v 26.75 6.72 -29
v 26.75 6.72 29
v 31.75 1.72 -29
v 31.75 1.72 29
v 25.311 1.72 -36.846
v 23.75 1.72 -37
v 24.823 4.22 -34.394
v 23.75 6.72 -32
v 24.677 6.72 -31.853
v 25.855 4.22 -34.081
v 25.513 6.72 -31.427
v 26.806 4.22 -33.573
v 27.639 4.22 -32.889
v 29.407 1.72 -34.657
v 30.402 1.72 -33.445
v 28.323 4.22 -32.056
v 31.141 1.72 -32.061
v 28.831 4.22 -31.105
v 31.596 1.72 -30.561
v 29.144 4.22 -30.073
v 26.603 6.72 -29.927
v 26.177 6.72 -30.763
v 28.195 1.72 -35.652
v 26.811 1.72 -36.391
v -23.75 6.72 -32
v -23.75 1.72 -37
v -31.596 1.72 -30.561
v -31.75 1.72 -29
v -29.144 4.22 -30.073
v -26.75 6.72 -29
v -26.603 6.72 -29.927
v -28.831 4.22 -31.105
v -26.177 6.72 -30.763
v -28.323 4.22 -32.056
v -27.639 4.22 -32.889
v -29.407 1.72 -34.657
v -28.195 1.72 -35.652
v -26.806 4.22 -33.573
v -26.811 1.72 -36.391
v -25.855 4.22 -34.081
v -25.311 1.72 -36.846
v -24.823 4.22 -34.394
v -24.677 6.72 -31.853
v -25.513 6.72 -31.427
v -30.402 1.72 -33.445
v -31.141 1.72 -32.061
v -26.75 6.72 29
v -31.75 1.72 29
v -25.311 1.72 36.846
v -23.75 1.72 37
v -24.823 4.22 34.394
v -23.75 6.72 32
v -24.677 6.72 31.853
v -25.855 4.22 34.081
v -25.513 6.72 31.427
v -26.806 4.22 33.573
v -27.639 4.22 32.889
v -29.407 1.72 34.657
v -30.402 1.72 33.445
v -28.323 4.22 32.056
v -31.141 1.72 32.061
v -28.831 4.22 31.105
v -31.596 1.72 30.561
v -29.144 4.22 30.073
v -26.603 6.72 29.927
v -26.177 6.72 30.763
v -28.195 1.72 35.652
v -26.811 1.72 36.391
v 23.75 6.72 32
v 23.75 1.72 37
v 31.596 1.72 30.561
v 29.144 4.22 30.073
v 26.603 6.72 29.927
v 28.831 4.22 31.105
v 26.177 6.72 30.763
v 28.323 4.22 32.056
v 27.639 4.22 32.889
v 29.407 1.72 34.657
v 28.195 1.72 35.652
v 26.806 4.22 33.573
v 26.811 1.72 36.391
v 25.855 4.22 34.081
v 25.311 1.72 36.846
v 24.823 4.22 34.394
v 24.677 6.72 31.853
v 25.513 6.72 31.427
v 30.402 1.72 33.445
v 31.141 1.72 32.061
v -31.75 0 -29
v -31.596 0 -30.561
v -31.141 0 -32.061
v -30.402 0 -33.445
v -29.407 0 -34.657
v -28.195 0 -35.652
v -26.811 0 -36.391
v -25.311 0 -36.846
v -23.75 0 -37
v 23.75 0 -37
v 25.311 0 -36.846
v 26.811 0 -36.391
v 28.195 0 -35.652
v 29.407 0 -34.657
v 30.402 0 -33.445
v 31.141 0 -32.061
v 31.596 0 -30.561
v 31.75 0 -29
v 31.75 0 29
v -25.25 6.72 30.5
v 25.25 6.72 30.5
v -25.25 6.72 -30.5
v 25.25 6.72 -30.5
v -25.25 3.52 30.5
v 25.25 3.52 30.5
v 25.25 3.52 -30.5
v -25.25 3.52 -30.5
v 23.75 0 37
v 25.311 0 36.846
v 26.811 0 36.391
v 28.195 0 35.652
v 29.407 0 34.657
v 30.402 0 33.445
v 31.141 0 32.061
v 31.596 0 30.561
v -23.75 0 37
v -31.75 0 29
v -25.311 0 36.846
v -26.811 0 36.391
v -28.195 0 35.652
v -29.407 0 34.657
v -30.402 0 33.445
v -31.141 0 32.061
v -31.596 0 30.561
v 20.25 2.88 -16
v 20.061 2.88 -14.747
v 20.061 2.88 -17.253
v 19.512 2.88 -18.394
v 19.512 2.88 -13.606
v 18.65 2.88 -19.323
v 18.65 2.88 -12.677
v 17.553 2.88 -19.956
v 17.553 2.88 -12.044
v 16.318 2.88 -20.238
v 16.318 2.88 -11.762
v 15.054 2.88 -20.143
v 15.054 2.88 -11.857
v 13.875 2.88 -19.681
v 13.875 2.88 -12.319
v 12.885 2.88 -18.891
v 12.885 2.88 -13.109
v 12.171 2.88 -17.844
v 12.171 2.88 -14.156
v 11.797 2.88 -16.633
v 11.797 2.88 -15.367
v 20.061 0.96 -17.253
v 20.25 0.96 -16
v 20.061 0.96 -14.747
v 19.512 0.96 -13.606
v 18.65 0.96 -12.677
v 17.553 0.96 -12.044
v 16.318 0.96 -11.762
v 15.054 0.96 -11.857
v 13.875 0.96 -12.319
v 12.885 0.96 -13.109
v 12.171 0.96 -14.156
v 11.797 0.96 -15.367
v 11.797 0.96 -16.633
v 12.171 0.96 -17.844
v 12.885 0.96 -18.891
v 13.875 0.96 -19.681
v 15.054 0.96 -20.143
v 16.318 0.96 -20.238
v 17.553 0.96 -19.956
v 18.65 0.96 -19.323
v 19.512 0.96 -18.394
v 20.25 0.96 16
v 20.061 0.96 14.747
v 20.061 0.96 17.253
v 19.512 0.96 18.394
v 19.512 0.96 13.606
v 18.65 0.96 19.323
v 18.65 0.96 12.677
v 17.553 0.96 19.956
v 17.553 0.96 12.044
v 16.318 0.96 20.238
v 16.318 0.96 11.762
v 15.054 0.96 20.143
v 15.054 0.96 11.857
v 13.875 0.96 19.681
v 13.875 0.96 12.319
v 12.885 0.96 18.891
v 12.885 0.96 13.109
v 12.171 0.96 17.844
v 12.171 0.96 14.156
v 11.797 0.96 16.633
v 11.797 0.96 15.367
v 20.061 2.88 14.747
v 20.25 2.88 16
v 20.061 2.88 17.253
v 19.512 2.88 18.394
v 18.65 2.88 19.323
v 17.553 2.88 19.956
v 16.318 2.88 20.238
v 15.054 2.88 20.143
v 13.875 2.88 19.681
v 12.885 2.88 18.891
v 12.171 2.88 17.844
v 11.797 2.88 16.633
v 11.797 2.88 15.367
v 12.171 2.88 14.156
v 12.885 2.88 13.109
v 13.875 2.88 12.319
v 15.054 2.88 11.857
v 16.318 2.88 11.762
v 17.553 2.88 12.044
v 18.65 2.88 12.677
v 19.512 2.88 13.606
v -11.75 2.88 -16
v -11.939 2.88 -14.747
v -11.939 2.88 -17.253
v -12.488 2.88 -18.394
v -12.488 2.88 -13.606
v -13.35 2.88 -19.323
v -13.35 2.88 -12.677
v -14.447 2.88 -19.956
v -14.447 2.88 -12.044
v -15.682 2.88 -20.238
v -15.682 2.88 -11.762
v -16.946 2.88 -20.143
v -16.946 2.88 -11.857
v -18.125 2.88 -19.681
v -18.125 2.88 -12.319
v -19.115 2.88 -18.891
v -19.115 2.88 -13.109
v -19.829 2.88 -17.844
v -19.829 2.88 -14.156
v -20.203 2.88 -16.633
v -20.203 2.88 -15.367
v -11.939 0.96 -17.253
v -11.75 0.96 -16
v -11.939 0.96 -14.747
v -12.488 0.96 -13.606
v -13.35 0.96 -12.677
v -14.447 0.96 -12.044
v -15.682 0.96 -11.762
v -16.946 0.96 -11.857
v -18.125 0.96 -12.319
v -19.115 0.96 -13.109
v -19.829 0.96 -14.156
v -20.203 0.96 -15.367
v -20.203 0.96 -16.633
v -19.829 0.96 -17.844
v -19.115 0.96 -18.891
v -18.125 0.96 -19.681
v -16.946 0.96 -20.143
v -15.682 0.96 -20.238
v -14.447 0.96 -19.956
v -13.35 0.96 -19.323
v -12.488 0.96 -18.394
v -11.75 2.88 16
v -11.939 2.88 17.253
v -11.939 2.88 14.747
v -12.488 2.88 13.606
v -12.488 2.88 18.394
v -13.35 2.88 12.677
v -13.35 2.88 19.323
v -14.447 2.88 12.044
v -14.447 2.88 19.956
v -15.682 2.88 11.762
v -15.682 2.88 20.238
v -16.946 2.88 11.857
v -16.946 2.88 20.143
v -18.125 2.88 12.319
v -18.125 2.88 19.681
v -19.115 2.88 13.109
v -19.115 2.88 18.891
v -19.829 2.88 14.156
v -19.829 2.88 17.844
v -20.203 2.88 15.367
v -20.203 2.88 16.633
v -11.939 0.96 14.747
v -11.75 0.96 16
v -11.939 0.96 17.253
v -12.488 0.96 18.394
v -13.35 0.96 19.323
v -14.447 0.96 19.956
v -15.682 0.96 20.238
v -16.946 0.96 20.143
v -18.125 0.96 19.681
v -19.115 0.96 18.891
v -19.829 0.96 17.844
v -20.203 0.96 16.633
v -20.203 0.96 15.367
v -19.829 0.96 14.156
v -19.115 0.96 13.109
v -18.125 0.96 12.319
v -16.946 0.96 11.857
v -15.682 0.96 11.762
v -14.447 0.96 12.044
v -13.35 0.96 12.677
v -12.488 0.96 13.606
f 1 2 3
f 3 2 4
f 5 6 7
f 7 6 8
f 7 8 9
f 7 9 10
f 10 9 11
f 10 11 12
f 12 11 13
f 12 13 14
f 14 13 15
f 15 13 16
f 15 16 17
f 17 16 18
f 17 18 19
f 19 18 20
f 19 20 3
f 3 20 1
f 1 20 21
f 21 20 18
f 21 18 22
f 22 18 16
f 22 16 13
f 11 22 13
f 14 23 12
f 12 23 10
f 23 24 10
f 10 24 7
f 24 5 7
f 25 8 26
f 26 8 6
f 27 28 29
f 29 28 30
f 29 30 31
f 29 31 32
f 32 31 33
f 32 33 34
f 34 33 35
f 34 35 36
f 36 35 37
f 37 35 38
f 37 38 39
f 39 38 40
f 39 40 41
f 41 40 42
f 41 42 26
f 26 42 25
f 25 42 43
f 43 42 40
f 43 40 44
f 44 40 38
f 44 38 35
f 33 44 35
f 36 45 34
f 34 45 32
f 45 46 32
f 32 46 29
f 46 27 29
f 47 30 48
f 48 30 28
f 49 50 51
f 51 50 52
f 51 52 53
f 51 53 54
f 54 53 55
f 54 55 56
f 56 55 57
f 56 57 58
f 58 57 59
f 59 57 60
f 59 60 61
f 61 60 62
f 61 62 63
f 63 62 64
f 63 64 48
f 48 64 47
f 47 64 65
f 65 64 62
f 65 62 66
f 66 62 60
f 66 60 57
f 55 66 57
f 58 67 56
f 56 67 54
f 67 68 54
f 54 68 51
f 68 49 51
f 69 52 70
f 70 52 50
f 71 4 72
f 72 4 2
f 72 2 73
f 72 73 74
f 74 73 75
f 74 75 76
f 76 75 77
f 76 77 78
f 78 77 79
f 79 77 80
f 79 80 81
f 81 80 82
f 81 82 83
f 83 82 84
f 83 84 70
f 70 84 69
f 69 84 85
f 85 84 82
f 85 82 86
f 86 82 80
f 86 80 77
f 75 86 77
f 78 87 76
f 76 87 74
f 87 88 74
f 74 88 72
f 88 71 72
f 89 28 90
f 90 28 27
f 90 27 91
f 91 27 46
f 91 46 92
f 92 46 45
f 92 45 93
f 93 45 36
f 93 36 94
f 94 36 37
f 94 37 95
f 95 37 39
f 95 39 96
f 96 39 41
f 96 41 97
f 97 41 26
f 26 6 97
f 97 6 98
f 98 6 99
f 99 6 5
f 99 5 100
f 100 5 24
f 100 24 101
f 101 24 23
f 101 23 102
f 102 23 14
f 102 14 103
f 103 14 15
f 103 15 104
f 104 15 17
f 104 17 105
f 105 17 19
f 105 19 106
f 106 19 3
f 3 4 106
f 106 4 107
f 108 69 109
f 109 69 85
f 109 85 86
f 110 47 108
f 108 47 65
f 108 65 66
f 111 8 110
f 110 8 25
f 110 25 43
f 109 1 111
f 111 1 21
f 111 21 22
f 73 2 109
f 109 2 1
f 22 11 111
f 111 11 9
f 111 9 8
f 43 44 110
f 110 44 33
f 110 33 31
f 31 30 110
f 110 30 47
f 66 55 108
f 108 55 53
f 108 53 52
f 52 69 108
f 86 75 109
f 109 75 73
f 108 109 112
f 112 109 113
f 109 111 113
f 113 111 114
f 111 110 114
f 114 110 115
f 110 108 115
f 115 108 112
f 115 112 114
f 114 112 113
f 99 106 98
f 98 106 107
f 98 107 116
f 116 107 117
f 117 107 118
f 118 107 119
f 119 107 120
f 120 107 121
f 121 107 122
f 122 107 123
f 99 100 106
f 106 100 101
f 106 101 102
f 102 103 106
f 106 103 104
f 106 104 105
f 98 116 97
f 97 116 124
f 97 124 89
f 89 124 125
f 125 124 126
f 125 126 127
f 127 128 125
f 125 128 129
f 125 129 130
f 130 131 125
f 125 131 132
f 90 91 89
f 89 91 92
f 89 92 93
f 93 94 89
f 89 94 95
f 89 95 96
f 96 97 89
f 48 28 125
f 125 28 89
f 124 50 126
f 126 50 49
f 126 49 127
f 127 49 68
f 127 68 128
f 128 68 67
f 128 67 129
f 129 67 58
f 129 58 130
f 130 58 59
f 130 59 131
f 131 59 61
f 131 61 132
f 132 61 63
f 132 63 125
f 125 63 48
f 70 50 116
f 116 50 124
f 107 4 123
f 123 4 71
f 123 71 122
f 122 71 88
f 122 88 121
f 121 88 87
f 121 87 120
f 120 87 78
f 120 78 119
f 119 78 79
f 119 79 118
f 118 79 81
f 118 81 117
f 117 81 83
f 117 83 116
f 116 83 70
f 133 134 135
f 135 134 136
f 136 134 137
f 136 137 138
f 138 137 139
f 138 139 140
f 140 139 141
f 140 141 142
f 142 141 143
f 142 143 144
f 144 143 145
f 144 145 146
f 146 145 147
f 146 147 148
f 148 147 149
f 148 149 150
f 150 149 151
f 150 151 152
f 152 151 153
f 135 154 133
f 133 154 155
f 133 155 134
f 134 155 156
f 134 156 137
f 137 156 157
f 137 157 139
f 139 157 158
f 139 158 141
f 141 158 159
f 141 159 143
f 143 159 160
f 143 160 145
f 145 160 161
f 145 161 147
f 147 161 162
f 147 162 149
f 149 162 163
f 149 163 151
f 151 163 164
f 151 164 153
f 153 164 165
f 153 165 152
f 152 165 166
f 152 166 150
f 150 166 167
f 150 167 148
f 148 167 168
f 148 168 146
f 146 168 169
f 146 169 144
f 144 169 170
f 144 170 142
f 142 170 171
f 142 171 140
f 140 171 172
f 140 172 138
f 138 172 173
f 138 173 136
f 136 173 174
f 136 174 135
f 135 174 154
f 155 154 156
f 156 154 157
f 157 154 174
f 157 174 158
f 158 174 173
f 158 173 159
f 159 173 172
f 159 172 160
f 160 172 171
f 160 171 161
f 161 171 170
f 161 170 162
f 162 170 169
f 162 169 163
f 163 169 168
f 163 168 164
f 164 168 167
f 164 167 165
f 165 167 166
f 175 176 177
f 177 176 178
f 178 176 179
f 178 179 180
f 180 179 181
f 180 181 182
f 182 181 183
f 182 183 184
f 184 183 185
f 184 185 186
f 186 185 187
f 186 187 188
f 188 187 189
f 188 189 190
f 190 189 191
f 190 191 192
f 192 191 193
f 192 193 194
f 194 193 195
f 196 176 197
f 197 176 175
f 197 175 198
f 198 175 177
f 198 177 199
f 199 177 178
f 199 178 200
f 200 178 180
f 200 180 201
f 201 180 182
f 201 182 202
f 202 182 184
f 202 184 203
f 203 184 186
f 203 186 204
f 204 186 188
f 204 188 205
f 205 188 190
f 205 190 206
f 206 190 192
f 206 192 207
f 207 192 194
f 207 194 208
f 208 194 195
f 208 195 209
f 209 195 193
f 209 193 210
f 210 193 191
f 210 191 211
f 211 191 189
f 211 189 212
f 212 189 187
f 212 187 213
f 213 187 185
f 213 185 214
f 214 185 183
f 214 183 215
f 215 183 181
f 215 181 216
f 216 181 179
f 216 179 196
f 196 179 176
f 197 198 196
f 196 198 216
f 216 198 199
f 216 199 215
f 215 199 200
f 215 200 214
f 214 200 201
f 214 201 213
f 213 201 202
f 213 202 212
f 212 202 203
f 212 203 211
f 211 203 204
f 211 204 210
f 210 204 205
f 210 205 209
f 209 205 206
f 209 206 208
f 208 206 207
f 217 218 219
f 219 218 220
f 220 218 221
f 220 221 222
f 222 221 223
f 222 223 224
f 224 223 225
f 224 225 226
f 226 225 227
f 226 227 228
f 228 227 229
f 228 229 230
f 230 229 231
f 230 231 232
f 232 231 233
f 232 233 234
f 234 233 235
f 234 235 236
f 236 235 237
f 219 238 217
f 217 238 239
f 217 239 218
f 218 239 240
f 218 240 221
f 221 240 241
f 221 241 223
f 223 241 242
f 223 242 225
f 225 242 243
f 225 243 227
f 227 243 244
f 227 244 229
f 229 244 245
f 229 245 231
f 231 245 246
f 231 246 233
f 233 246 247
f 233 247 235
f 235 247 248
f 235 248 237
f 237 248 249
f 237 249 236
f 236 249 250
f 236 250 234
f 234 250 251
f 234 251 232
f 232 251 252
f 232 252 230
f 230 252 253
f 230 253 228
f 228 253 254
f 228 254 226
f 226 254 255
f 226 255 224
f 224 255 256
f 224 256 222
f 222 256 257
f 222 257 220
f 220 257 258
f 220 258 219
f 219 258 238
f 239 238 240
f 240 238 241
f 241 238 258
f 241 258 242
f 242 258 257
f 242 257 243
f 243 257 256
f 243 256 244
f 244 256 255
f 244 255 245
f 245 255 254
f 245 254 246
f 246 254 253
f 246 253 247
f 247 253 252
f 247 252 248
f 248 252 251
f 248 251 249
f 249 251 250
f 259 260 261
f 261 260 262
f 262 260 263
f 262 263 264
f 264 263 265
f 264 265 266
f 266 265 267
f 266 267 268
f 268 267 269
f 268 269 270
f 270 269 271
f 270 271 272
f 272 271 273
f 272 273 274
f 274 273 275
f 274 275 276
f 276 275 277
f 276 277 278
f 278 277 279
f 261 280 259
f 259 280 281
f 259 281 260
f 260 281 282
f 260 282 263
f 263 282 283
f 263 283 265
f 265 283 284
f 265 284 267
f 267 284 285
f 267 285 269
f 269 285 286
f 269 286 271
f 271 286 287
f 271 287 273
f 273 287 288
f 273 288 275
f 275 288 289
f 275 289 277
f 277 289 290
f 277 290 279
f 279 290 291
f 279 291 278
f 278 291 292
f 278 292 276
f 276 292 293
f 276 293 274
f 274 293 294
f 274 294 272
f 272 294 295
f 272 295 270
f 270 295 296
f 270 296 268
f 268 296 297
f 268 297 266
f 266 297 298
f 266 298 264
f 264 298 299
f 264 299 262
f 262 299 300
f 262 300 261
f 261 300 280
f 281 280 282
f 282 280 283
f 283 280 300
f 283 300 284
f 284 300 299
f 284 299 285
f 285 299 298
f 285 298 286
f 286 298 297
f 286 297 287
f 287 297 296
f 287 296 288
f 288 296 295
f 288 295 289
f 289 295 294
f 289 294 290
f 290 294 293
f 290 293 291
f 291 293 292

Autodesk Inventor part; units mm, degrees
ref_plane "YZ Plane" through (0, 0, 0) normal (1, 0, 0) x (0, 1, 0)
ref_plane "XZ Plane" through (0, 0, 0) normal (0, 1, 0) x (-1, 0, 0)
ref_plane "XY Plane" through (0, 0, 0) normal (0, 0, 1) x (1, 0, 0)
sketch "Sketch1" plane through (0, 0, 0) normal (0, 1, 0) x (-1, 0, 0)
  line L0 (31.75, 37) -> (-31.75, 37)
  line L1 (-31.75, 37) -> (-31.75, -37)
  line L2 (-31.75, -37) -> (31.75, -37)
  line L3 (31.75, -37) -> (31.75, 37)
  point P0 (0, 0)
  point P1 (31.75, 0)
  point P2 (0, 37)
  dimension "d0" = 74
  dimension "d1" = 63.5
extrude "Extrusion1" add sketch "Sketch1" along normal blind 0.96
sketch "Sketch2" plane through (0, 0.96, 0) normal (0, 1, 0) x (1, 0, 0)
  line L0 (31.75, -37) -> (31.75, 37) projected
  line L1 (31.75, 37) -> (-31.75, 37) projected
  line L2 (-31.75, 37) -> (-31.75, -37) projected
  line L3 (-31.75, -37) -> (31.75, -37) projected
  line L4 (-31.75, 0) -> (31.75, 0)
  line L5 (0, -37) -> (0, 37)
  circle A0 centre (-16, -16) radius 4.25
  circle A1 centre (-16, 16) radius 4.25
  circle A2 centre (16, 16) radius 4.25
  circle A3 centre (16, -16) radius 4.25
  point P0 (0, 0)
  dimension "d13" = 8.5
  dimension "d14" = 32
  dimension "d15" = 32
extrude "Extrusion2" add sketch "Sketch2" along normal blind 1.92
sketch "Sketch3" plane through (0, 2.88, 0) normal (0, 1, 0) x (1, 0, 0)
  line L0 (-31.75, 37) -> (-31.75, -37) projected
  line L1 (-31.75, -37) -> (31.75, -37) projected
  line L2 (31.75, -37) -> (31.75, 37) projected
  line L3 (31.75, 37) -> (-31.75, 37) projected
  point P0 (0, 0)
extrude "Extrusion3" add sketch "Sketch3" along normal blind 0.64
fillet "Fillet1" radius 8 4 edges at (31.75, 1.76, 37) (-31.75, 1.76, 37) (-31.75, 1.76, -37) (31.75, 1.76, -37)
ref_plane "Arbeitsebene2" through (29.4069, 3.52, -34.6569) normal (-0.7625, 0, -0.647) x (0, -1, 0)
sketch "Skizze7" plane through (0, 3.52, 0) normal (0, 1, 0) x (1, 0, 0)
  line L0 (-23.75, -37) -> (23.75, -37) projected
  arc A0 (23.75, -37) -> (31.75, -29) centre (23.75, -29) ccw projected
  line L1 (31.75, -29) -> (31.75, 29) projected
  arc A1 (31.75, 29) -> (23.75, 37) centre (23.75, 29) ccw projected
  line L2 (23.75, 37) -> (-23.75, 37) projected
  arc A2 (-23.75, 37) -> (-31.75, 29) centre (-23.75, 29) ccw projected
  line L3 (-31.75, 29) -> (-31.75, -29) projected
  arc A3 (-31.75, -29) -> (-23.75, -37) centre (-23.75, -29) ccw projected
  line L4 (23.75, -37) -> (-27, -37)
  line L5 (-31.75, -29) -> (-31.75, 29)
  line L6 (-23.75, 37) -> (23.75, 37)
  line L7 (31.75, 29) -> (31.75, -29)
  arc A4 (23.75, -37) -> (31.75, -29) centre (23.75, -29) ccw
  arc A5 (-32.385, -29) -> (-27, -37) centre (-23.75, -29) ccw
  arc A6 (-23.75, 37) -> (-31.75, 29) centre (-23.75, 29) ccw
  arc A7 (31.75, 29) -> (23.75, 37) centre (23.75, 29) ccw
  point P0 (0, 0)
extrude "Extrusion4" add sketch "Skizze7" along normal blind 3.2
sketch "Skizze8" plane through (0, 6.72, 0) normal (0, 1, 0) x (1, 0, 0)
  line L0 (25.25, 30.5) -> (-25.25, 30.5)
  line L1 (-25.25, 30.5) -> (-25.25, -30.5)
  line L2 (-25.25, -30.5) -> (25.25, -30.5)
  line L3 (25.25, -30.5) -> (25.25, 30.5)
  line L4 (25.25, 30.5) -> (-25.25, -30.5) construction
  line L5 (-25.25, 30.5) -> (25.25, -30.5) construction
  point P0 (0, 0)
  dimension "d25" = 61
  dimension "d26" = 50.5
extrude "Extrusion5" cut sketch "Skizze8" against normal blind 3.2
chamfer "Fasen3" distance 5 angle 45 8 edges at (31.75, 6.72, 0) (29.4069, 6.72, -34.6569) (0, 6.72, -37) (-29.4069, 6.72, -34.6569) (-31.75, 6.72, 0) (-29.4069, 6.72, 34.6569) (0, 6.72, 37) (29.4069, 6.72, 34.6569)
properties part number "IMU_Base_T-Shirt"
